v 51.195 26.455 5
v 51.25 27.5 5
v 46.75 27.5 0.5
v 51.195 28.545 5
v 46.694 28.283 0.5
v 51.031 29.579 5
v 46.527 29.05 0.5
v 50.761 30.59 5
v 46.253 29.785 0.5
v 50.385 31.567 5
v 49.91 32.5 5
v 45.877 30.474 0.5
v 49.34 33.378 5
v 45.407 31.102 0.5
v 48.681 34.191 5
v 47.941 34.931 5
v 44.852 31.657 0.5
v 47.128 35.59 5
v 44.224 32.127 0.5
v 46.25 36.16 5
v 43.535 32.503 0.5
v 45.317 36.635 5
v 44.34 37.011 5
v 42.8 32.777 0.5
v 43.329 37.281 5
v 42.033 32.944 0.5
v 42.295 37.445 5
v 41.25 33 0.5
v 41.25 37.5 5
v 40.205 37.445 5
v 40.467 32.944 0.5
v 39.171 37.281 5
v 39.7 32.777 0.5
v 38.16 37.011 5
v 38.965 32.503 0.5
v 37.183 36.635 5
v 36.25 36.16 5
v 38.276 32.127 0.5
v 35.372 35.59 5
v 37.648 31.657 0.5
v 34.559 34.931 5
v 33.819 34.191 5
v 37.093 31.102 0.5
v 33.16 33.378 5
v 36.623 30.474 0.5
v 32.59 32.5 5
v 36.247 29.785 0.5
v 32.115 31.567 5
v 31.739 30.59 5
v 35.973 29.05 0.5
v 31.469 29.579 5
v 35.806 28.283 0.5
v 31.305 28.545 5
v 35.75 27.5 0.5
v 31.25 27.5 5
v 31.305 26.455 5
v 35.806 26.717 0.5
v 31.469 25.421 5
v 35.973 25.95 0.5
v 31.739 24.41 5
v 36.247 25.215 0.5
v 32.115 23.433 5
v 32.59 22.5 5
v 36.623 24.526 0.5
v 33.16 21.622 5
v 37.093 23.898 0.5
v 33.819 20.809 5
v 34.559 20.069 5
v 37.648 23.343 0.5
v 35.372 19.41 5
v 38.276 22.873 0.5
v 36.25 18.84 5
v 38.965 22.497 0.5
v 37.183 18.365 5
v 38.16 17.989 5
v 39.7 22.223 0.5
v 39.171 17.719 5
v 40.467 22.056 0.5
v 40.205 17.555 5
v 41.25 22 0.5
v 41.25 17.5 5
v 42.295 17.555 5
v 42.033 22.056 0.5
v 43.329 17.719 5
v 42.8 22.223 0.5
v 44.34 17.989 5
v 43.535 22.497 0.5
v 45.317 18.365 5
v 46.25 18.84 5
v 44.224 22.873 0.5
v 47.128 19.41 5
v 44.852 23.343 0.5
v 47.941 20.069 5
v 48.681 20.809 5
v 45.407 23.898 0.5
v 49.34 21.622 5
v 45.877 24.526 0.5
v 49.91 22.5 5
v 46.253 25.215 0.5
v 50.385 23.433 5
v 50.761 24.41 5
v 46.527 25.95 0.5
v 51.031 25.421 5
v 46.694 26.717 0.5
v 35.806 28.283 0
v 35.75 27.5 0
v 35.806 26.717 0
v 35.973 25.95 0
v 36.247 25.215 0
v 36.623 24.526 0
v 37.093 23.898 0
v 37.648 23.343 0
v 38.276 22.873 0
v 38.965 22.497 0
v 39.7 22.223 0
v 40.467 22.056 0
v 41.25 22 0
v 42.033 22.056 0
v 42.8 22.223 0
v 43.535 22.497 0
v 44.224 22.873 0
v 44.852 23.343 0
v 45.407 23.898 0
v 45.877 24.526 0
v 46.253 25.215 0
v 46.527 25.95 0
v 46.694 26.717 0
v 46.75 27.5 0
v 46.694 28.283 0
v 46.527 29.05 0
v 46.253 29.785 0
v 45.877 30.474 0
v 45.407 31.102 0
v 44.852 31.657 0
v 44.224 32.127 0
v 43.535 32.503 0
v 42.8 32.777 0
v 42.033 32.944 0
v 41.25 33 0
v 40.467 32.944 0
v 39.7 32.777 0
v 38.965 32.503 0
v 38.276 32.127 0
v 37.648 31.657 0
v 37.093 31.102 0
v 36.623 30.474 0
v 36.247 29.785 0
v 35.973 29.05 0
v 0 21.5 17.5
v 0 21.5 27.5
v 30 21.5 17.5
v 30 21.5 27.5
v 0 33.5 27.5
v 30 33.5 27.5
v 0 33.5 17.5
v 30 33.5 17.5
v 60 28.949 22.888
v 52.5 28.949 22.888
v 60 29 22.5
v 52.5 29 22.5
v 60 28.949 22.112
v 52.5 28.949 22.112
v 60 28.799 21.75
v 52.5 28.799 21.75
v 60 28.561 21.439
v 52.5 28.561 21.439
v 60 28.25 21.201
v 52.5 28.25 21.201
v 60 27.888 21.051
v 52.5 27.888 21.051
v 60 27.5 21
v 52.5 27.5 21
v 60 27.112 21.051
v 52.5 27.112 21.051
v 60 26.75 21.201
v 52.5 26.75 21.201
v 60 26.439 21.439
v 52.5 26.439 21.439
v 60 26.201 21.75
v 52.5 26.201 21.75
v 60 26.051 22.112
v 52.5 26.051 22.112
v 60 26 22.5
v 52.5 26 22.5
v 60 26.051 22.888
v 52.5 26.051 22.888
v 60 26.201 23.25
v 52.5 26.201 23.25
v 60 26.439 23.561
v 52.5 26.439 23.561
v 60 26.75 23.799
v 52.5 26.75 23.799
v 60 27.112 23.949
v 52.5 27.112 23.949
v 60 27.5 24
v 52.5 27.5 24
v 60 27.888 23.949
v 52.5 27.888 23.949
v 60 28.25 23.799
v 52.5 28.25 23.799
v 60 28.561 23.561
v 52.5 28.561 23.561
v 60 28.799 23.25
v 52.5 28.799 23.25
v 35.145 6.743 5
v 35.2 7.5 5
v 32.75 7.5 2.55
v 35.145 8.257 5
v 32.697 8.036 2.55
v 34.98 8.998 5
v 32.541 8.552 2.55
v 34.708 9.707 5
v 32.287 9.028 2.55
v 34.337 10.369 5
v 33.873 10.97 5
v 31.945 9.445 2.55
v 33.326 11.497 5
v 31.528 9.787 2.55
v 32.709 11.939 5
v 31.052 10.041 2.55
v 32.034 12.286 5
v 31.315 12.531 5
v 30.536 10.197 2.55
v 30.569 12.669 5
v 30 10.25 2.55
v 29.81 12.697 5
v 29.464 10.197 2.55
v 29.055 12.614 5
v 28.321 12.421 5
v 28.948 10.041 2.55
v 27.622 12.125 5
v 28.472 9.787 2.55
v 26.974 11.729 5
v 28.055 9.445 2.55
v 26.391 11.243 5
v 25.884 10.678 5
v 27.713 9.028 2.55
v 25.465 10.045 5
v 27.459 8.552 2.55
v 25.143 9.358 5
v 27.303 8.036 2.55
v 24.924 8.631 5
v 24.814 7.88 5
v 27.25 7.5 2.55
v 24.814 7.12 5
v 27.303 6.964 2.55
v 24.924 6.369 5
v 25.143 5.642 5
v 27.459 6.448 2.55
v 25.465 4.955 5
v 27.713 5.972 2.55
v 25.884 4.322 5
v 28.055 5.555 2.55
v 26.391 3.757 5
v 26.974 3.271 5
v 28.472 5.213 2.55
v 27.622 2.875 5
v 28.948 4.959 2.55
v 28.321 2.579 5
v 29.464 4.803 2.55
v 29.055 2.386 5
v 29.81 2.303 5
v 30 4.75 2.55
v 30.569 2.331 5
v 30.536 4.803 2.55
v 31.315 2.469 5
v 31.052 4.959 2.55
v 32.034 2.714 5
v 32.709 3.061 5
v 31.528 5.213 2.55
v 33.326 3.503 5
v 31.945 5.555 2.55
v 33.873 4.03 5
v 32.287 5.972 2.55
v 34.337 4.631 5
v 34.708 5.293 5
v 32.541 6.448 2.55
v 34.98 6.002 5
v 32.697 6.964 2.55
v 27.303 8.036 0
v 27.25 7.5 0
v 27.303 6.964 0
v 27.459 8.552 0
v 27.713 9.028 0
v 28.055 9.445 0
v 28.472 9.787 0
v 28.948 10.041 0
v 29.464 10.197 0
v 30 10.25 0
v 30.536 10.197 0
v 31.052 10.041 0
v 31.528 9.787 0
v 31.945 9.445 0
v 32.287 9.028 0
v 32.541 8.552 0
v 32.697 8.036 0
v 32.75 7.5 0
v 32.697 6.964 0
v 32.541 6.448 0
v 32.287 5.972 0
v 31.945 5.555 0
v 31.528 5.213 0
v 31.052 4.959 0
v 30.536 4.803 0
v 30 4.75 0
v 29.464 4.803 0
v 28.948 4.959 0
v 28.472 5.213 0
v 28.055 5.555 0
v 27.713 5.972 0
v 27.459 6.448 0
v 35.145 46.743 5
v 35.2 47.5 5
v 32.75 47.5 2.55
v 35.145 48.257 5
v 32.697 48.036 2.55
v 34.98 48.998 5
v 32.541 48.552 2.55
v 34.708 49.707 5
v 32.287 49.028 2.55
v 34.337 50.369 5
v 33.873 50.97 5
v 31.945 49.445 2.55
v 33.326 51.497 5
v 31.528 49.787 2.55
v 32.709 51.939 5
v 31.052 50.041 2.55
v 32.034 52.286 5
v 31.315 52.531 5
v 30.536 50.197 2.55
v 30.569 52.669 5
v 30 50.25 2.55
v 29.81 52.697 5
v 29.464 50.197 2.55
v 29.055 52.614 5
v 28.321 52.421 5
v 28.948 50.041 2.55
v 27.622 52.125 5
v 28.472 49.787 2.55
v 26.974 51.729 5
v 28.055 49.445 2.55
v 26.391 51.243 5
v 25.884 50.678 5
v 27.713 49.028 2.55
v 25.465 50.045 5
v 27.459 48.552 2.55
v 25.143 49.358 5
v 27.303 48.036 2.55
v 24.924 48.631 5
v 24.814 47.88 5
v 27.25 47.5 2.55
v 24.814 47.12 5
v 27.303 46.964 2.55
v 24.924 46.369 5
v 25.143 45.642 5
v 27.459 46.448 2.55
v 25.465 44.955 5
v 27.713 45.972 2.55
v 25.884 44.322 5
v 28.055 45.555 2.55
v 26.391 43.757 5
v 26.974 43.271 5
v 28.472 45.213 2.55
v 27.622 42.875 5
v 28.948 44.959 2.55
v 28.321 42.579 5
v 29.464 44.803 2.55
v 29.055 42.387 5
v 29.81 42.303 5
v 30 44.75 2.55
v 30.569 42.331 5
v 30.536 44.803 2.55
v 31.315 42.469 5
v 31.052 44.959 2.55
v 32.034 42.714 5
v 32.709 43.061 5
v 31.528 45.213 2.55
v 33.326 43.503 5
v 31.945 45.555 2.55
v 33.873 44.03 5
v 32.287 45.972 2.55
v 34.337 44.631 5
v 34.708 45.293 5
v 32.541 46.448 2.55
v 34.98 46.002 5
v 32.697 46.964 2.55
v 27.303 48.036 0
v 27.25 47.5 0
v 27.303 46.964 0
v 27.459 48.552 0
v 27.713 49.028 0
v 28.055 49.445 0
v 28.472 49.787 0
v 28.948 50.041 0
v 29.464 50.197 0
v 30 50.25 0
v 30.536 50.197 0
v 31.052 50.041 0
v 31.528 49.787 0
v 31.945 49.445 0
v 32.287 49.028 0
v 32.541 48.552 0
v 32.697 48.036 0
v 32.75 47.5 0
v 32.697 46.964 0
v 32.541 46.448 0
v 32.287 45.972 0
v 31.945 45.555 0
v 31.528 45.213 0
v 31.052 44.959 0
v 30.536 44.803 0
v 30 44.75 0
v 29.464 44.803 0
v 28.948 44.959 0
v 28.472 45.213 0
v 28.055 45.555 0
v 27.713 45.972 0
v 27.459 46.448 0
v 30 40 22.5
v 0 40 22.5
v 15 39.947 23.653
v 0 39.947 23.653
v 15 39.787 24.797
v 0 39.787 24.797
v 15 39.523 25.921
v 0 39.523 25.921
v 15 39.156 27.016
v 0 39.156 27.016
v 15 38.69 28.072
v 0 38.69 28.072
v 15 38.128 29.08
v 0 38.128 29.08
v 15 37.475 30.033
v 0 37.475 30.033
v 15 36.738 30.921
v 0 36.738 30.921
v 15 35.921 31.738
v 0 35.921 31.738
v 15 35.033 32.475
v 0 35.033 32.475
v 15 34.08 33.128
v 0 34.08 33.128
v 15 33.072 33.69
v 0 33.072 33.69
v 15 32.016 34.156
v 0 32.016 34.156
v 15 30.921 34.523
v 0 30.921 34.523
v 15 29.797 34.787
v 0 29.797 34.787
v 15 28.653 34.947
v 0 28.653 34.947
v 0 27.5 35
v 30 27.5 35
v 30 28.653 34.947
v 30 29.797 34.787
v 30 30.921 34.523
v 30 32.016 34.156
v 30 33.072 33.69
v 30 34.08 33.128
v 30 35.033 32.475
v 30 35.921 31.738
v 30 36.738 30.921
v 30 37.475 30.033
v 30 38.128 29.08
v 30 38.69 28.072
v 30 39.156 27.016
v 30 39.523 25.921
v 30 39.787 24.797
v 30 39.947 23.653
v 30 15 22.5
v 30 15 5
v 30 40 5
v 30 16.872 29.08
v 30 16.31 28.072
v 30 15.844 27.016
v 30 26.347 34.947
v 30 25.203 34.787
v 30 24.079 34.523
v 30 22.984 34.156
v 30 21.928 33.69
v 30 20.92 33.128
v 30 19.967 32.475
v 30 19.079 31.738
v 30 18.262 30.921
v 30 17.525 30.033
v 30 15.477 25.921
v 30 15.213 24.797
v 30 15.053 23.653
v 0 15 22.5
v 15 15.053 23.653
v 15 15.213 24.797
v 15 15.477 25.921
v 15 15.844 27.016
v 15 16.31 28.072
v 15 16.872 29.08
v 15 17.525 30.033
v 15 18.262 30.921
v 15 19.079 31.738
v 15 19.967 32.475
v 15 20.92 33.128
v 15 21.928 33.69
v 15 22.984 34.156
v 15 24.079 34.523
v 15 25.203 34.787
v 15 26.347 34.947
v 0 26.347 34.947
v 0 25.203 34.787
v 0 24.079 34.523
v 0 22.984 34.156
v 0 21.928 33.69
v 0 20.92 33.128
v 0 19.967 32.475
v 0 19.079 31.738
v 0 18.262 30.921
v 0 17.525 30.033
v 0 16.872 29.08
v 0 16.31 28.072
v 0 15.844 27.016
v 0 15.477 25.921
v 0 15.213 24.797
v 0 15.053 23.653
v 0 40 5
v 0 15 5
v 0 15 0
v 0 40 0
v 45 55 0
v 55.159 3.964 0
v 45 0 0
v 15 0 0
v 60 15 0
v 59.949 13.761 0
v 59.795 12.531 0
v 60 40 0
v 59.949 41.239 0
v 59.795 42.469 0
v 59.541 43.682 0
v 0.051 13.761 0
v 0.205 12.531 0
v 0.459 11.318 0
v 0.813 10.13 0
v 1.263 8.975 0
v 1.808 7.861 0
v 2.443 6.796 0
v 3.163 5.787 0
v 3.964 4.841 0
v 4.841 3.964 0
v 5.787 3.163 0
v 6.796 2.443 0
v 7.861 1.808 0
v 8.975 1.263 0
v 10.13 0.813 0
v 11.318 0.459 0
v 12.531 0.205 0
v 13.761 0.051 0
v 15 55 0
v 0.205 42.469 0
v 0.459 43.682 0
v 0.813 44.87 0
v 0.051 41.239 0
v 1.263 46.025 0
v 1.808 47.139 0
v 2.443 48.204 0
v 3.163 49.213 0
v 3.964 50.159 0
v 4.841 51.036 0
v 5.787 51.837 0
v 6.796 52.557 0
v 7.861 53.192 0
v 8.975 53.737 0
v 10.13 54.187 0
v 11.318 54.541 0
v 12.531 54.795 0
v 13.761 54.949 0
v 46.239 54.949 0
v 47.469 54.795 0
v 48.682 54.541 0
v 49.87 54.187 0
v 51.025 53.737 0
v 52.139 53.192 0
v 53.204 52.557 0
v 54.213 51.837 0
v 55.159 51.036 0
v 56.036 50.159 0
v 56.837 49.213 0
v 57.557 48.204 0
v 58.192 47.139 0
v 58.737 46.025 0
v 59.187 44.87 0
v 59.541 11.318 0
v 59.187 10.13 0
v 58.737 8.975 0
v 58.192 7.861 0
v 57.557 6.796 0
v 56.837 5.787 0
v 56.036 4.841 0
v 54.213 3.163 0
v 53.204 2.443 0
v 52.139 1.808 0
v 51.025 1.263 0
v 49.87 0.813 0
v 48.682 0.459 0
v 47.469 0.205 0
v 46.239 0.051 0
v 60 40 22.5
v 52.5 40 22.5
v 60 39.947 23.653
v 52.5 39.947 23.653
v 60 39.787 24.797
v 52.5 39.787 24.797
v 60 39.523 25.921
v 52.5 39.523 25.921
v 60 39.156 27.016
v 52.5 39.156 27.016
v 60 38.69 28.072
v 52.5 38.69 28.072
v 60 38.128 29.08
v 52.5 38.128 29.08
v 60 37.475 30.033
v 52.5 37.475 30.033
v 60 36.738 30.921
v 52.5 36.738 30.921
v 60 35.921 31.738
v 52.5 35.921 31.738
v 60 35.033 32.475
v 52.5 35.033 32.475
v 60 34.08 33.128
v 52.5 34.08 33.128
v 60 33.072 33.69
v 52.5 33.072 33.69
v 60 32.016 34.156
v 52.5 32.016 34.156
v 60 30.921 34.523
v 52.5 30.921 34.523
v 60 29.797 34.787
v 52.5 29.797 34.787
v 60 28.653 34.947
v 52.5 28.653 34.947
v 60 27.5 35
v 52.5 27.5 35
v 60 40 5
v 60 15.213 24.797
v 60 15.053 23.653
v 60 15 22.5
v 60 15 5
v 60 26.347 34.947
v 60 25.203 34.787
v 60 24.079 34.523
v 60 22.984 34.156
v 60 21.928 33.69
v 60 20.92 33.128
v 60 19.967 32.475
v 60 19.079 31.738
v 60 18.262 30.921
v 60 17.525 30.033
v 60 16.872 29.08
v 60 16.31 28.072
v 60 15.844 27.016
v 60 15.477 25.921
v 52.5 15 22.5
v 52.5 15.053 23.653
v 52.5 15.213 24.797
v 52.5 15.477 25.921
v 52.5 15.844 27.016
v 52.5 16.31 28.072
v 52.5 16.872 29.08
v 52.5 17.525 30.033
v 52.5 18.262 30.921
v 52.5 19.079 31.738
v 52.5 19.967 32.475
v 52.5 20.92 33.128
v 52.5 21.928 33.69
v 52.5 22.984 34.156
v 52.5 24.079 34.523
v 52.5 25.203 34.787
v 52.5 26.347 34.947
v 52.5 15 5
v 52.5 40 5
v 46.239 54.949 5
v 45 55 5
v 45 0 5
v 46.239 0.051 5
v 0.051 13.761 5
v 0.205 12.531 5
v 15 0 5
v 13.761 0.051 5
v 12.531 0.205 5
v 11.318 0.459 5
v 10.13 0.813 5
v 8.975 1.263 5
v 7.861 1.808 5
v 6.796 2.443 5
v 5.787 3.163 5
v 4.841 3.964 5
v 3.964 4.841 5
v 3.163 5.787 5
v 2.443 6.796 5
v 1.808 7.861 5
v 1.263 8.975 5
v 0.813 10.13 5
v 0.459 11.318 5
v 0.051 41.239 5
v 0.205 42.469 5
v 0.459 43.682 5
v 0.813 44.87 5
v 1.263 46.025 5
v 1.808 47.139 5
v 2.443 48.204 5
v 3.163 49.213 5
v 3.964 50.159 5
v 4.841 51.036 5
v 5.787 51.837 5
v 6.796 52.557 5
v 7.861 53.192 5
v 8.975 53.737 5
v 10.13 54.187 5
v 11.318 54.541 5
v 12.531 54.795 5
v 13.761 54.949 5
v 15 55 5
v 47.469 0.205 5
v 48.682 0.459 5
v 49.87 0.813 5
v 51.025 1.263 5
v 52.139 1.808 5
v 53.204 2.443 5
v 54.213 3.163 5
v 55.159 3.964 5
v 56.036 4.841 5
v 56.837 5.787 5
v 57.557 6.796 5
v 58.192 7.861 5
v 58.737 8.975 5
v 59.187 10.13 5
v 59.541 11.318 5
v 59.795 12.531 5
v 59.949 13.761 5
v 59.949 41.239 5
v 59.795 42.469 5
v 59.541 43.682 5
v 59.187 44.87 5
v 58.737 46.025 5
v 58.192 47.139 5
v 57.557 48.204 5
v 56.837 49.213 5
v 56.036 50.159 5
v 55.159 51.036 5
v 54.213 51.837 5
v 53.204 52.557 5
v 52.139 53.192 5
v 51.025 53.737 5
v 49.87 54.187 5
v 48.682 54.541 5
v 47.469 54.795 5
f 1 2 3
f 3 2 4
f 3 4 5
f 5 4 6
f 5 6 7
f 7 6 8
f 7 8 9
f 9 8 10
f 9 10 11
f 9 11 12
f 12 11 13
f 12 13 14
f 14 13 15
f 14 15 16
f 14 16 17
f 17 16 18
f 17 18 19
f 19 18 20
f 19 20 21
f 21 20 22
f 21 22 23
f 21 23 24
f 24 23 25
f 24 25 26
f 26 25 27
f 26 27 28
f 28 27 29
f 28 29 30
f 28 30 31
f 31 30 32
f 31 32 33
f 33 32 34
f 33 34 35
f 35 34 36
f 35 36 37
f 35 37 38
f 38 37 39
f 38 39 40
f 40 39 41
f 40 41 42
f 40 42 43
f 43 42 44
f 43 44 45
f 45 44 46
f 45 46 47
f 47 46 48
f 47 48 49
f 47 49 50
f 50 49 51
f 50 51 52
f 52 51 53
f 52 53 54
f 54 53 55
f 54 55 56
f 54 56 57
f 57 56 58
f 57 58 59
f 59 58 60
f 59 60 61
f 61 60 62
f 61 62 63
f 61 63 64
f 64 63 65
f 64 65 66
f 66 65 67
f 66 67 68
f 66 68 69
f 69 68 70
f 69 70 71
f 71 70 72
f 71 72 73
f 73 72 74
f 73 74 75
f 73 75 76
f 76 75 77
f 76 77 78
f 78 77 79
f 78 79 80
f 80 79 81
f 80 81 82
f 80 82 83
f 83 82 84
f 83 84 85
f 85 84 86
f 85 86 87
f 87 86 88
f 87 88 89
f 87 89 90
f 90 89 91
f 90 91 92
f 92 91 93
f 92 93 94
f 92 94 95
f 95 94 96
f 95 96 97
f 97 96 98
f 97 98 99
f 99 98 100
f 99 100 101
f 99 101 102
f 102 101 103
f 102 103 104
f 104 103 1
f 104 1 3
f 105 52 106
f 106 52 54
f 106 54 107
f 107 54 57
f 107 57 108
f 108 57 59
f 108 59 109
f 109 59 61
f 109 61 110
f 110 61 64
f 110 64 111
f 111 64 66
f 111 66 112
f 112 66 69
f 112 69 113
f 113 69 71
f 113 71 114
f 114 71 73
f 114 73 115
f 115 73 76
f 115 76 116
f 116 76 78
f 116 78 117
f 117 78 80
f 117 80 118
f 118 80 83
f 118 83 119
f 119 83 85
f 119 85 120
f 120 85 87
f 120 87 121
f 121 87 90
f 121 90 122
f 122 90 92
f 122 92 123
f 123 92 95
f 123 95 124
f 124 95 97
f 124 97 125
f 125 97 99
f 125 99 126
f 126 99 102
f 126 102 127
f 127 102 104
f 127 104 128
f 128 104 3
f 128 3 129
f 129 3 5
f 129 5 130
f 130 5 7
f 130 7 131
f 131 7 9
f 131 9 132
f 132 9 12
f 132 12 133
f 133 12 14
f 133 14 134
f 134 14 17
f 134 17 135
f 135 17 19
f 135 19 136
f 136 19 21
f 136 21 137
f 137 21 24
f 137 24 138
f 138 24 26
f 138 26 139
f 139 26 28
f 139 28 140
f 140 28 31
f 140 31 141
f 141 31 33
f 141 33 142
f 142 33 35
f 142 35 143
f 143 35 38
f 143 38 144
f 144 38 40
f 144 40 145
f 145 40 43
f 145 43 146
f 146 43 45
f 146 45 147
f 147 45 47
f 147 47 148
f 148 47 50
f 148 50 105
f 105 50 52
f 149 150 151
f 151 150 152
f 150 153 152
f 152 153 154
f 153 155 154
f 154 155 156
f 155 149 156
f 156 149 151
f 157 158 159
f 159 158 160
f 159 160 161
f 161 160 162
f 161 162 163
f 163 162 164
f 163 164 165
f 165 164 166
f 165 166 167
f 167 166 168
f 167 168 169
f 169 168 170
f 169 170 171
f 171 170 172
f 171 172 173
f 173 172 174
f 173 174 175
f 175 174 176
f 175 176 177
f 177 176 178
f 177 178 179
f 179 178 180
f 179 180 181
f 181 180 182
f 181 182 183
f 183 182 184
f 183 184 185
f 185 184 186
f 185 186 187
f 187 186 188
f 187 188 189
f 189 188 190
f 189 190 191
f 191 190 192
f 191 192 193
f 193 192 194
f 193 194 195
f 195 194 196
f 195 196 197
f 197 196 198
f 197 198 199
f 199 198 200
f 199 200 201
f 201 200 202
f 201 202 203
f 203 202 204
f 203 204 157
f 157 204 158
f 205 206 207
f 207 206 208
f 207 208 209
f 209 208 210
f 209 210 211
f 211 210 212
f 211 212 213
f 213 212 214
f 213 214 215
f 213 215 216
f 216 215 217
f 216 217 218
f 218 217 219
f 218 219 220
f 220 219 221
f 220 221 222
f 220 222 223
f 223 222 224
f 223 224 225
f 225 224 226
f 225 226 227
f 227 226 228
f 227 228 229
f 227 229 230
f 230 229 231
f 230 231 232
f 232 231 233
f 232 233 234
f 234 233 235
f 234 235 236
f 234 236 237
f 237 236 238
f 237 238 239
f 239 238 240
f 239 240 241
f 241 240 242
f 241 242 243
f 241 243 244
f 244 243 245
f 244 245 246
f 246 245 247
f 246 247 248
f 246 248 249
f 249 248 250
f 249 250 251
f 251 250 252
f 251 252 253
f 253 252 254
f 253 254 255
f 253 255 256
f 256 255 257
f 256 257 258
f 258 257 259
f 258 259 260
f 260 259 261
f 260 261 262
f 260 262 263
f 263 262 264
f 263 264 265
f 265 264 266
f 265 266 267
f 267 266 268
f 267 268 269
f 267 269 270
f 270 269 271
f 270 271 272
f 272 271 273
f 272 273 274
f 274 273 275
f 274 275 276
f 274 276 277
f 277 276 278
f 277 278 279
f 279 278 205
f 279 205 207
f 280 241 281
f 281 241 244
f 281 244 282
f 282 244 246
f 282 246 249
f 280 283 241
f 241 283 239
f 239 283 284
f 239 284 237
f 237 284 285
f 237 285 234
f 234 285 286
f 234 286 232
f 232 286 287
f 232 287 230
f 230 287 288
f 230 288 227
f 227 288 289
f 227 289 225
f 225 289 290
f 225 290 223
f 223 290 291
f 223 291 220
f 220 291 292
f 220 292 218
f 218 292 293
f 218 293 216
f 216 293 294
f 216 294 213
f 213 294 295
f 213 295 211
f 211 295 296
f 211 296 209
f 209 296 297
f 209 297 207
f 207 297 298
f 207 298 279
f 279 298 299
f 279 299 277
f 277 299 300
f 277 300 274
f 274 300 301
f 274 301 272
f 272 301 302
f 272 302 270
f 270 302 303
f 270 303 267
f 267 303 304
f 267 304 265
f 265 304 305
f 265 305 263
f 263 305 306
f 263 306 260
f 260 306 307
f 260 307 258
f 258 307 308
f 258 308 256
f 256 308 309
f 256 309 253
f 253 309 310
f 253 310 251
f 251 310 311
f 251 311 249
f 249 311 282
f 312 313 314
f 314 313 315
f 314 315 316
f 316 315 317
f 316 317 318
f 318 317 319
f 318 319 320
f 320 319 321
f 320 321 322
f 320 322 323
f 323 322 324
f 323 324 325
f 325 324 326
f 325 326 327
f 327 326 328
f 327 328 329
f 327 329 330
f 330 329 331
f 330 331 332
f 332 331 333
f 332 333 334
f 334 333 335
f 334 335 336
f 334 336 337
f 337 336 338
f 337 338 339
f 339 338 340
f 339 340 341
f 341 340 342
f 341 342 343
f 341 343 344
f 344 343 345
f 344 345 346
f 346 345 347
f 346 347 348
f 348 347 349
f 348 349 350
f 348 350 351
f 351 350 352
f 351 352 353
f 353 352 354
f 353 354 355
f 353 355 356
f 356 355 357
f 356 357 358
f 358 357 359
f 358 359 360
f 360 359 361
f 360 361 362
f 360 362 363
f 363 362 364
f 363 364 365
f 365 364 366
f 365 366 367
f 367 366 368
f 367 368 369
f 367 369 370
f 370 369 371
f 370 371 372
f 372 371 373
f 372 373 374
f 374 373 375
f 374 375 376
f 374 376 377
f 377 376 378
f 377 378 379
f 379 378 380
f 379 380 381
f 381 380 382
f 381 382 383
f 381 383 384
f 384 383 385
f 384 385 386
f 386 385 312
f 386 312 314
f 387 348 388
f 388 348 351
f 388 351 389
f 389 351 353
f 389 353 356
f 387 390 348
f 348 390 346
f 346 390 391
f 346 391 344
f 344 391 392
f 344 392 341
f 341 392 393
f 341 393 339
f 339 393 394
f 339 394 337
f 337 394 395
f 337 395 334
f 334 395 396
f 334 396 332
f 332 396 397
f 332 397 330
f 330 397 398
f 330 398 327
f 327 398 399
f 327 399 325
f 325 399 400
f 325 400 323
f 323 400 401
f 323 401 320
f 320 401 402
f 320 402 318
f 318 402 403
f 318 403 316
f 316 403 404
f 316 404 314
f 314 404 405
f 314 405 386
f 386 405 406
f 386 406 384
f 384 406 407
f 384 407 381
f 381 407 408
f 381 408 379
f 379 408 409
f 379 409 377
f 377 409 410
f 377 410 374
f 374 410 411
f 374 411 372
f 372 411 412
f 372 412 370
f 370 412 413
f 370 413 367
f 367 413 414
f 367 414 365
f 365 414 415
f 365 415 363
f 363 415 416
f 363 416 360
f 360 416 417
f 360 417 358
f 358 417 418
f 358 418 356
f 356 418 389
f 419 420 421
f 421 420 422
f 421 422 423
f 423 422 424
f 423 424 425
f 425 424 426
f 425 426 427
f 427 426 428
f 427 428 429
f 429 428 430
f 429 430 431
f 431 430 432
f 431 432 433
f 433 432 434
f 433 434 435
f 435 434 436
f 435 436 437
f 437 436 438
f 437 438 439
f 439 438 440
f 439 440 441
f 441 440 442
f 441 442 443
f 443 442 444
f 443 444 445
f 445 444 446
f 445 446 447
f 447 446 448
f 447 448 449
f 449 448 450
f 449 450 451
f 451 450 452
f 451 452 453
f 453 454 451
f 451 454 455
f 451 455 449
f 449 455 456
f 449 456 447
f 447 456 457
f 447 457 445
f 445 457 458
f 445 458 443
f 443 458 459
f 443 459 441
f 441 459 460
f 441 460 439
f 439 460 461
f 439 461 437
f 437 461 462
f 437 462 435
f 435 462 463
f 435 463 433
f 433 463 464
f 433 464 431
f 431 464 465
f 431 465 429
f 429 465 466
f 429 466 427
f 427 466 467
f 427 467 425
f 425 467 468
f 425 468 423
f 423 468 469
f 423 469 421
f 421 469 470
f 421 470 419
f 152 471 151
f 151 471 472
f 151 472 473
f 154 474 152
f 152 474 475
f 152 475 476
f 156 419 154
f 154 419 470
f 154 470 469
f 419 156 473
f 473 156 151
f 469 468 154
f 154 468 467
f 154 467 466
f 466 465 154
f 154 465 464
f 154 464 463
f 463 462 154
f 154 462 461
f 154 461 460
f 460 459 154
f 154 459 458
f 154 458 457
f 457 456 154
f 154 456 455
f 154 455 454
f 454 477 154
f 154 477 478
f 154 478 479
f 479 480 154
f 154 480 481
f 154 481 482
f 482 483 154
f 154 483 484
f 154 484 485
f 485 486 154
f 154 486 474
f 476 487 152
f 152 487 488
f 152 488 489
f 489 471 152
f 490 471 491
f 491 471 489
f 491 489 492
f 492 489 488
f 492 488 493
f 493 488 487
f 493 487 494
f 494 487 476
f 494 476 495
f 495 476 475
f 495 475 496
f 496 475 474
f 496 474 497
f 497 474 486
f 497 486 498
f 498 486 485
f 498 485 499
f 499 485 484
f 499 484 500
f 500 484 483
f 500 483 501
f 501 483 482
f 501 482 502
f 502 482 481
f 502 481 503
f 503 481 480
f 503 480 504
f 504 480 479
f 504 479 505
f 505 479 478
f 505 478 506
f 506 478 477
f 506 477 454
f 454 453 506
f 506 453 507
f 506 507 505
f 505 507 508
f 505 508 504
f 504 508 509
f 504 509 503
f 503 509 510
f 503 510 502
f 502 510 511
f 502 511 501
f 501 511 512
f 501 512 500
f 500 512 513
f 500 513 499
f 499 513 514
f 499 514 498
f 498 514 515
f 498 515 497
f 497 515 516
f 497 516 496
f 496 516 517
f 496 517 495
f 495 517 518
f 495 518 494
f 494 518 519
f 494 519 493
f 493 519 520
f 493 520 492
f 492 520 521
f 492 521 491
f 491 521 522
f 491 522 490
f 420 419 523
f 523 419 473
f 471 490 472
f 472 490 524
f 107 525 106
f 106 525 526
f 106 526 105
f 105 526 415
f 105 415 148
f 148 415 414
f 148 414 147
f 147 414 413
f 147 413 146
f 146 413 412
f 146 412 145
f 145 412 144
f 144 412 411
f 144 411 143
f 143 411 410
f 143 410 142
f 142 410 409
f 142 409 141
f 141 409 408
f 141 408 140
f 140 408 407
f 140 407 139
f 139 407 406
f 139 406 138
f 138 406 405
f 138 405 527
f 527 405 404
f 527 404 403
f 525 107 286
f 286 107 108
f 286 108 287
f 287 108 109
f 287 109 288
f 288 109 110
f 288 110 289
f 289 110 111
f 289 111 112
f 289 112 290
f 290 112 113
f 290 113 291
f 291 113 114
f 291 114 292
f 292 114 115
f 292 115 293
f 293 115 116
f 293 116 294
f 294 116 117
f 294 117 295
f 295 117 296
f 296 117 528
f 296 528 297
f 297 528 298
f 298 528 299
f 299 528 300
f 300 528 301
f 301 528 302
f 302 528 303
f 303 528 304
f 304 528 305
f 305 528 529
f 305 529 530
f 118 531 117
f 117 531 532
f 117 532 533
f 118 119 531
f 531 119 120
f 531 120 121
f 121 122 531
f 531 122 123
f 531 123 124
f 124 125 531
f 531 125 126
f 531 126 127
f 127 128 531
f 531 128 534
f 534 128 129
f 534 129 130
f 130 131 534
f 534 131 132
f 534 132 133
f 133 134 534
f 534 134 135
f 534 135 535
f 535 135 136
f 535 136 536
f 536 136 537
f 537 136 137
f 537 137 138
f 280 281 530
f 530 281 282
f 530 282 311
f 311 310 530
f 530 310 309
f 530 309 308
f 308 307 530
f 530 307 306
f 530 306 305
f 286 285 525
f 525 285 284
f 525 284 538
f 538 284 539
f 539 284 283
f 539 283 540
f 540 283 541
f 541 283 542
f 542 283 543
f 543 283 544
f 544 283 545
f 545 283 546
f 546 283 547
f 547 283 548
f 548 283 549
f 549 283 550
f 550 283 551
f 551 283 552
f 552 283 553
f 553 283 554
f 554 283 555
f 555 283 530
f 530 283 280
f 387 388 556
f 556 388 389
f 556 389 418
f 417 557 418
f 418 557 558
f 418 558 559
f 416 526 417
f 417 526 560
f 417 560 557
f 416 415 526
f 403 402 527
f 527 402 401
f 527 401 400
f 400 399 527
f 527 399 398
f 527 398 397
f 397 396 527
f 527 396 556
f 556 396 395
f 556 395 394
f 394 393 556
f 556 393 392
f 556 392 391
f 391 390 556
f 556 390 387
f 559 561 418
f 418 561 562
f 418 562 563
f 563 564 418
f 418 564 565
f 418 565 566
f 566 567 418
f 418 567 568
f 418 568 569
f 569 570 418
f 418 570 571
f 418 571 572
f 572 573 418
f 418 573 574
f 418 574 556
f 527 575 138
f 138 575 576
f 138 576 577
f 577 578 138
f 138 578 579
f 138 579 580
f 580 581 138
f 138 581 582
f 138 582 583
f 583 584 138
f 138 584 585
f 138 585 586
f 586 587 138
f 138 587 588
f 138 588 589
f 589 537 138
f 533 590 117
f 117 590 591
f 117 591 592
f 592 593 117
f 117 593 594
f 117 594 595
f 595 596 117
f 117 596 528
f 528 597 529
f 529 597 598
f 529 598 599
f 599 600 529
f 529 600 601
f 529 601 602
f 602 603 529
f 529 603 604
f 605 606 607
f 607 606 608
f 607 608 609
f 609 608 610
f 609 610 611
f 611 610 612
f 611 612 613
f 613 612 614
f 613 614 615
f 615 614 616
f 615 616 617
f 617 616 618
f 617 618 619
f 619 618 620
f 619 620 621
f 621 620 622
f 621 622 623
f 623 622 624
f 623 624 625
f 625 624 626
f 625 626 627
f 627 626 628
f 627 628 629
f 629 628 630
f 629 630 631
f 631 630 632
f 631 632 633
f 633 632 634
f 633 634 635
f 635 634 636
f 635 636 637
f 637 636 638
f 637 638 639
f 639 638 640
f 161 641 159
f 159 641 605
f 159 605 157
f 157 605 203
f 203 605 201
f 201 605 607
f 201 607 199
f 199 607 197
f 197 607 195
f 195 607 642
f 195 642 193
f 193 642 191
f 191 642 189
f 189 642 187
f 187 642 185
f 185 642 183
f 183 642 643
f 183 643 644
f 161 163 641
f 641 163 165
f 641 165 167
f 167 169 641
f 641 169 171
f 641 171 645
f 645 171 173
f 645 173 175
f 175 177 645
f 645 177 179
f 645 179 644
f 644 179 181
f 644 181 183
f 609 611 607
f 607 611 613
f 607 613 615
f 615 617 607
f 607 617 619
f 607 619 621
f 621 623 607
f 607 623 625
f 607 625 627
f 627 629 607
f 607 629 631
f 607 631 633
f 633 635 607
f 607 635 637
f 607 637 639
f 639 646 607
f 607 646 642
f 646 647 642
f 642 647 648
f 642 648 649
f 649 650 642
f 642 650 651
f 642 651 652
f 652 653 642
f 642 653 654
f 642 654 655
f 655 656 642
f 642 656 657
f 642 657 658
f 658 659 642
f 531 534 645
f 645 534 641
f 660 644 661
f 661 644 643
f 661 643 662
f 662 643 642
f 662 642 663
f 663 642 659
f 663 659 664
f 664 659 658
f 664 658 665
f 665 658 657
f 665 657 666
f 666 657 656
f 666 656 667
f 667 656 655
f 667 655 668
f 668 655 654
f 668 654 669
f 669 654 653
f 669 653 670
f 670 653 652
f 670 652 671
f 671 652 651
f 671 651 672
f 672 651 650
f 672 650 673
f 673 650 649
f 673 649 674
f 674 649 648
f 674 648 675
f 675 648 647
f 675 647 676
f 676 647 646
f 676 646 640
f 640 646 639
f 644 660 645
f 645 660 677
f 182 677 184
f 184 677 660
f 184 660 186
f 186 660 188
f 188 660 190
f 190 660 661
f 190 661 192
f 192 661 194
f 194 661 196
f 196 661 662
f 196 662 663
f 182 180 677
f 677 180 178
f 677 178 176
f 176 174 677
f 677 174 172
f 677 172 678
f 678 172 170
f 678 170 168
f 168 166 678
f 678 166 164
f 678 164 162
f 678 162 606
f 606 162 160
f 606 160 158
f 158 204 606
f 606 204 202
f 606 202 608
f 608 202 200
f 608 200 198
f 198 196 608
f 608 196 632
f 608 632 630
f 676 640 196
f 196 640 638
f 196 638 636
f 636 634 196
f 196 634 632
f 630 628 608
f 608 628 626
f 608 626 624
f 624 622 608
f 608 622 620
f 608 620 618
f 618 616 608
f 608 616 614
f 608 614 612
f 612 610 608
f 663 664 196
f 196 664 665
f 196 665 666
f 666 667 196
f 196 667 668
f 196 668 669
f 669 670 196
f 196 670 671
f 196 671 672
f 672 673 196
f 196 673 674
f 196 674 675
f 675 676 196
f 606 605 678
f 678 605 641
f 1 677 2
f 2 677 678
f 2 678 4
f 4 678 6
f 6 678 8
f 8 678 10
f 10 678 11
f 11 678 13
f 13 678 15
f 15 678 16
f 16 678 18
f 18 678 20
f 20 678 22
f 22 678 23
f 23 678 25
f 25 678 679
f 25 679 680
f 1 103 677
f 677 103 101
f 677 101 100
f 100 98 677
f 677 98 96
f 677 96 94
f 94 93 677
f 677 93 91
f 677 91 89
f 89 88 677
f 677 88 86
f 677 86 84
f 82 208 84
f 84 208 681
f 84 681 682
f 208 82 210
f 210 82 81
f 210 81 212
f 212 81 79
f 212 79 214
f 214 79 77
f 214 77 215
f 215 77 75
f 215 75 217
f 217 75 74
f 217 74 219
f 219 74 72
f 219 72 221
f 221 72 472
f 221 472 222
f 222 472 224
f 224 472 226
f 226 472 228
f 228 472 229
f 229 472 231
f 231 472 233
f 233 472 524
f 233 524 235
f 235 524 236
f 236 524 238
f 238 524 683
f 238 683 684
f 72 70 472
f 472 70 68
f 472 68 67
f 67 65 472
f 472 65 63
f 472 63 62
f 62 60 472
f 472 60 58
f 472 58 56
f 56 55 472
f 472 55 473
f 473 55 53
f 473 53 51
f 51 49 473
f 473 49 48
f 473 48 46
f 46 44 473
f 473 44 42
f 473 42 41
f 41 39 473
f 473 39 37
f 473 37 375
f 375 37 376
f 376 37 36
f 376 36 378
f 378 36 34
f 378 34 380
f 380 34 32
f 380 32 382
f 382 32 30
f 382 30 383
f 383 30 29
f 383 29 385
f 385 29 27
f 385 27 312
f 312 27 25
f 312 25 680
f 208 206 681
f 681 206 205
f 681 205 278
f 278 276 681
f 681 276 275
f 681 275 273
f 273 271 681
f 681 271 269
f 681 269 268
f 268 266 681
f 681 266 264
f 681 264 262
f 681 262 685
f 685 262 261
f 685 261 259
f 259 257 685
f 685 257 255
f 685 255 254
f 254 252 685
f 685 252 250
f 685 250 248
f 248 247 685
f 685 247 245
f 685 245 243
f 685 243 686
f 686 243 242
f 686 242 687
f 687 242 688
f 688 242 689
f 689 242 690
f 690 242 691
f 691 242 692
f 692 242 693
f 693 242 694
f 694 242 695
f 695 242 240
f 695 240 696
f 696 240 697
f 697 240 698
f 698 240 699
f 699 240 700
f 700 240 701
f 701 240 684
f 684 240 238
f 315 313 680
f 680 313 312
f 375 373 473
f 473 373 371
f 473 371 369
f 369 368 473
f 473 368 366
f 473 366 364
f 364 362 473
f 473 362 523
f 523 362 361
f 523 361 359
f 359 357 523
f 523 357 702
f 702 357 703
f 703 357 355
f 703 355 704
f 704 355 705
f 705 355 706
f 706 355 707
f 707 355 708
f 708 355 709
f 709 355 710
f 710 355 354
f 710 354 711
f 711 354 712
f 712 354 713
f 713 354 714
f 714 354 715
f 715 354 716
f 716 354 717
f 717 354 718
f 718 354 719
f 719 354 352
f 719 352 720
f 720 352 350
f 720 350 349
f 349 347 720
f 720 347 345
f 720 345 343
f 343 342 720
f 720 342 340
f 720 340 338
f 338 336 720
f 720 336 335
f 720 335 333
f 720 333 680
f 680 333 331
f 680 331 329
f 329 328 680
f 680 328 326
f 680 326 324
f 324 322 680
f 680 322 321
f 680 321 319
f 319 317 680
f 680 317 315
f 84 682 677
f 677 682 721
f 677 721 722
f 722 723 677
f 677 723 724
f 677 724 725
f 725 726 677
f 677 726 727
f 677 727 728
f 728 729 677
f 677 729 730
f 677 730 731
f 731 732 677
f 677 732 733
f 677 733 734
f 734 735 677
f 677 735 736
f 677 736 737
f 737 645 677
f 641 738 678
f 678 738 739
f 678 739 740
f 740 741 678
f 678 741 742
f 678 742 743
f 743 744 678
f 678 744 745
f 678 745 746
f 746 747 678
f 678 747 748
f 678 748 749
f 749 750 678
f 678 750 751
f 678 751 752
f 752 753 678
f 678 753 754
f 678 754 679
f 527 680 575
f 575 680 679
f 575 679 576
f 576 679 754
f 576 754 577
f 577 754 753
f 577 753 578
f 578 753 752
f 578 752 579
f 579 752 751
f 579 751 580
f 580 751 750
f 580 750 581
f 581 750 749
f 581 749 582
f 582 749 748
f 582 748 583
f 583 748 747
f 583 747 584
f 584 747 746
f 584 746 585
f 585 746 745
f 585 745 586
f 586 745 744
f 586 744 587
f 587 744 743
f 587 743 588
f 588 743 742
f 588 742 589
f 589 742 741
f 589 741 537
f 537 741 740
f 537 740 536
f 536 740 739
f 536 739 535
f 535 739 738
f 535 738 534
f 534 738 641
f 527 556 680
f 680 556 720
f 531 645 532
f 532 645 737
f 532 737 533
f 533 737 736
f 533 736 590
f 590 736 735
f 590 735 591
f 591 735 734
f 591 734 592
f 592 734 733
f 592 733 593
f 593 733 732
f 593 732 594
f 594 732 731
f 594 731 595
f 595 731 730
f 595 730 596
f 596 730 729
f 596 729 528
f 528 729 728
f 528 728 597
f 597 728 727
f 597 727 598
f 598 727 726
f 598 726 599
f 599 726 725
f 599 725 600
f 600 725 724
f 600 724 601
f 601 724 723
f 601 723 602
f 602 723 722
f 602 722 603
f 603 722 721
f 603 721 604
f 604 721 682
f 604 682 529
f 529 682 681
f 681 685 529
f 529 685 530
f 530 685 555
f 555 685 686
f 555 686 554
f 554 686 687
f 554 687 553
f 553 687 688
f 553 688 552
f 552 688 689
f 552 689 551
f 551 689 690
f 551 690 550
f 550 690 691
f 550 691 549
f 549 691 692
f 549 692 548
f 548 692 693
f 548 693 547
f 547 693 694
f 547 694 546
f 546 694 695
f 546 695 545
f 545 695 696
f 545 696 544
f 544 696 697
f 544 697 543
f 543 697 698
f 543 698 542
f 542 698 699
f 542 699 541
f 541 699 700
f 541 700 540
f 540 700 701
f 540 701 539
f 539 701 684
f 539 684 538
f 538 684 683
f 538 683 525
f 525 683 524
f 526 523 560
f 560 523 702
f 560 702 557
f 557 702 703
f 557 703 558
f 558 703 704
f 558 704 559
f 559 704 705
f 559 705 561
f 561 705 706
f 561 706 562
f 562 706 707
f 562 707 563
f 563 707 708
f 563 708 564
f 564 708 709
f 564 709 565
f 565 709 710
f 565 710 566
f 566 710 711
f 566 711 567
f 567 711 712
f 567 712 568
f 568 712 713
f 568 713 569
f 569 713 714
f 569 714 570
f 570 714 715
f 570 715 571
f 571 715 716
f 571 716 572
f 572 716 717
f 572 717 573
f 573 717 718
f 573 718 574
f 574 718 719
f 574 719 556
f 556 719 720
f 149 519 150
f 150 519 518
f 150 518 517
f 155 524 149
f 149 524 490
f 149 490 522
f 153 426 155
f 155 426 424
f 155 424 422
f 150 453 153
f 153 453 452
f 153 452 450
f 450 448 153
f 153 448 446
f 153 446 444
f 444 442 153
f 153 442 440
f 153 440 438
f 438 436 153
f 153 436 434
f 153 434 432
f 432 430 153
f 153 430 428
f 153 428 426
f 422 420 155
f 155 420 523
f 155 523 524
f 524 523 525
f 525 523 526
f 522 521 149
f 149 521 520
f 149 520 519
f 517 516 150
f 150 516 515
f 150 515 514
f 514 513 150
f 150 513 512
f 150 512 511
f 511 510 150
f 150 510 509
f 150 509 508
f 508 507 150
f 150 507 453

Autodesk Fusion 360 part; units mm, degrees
sketch "Skizze3" plane through (0, 0, 0) normal (0, 0, 1) x (1, 0, 0)
  line L0 (0, 0) -> (60, 0)
  line L1 (60, 0) -> (60, 55)
  line L2 (60, 55) -> (0, 55)
  line L3 (0, 55) -> (0, 0)
  line L4 (60, 55) -> (0, 55)
  line L5 (0, 55) -> (0, 0)
  line L6 (0, 0) -> (60, 0)
  line L7 (60, 0) -> (60, 55)
  line L8 (0, 15) -> (60, 15)
  line L9 (0, 40) -> (60, 40)
  line L10 (30, 40) -> (52.5, 40)
  line L11 (52.5, 40) -> (52.5, 15)
  line L12 (52.5, 15) -> (30, 15)
  line L13 (30, 15) -> (30, 40)
  point P0 (30, 7.5)
  point P1 (30, 47.5)
  dimension "d5" = 55
  dimension "d6" = 60
  dimension "d11" = 7.5
  dimension "d12" = 7.5
  dimension "d13" = 30
  dimension "d14" = 30
  dimension "d15" = 15
  dimension "d16" = 15
  dimension "d17" = 30
  dimension "d18" = 7.5
  dimension "d19" = 22.5
extrude "Extrusion2" add sketch "Skizze3" along normal blind 5
fillet "Abrundung2" radius 15 4 edges at (0, 55, 2.5) (0, 0, 2.5) (60, 0, 2.5) (60, 55, 2.5)
sketch "Skizze4" plane through (0, 0, 0) normal (0, 0, 1) x (1, 0, 0)
  line L0 (0, 15) -> (30, 15)
  line L1 (30, 15) -> (30, 40)
  line L2 (30, 40) -> (0, 40)
  line L3 (0, 40) -> (0, 15)
  point P0 (0, 15)
  point P1 (30, 40)
sketch "Skizze5" plane through (0, 0, 5) normal (0, 0, 1) x (-1, 0, 0)
  arc A0 (-60, -40) -> (-45, -55) centre (-45, -40) ccw
  line L0 (-45, -55) -> (-15, -55)
  arc A1 (-15, -55) -> (0, -40) centre (-15, -40) ccw
  line L1 (0, -40) -> (0, -15)
  arc A2 (0, -15) -> (-15, 0) centre (-15, -15) ccw
  line L2 (-15, 0) -> (-45, 0)
  arc A3 (-45, 0) -> (-60, -15) centre (-45, -15) ccw
  line L3 (-60, -15) -> (-60, -40)
  line L4 (-60, -15) -> (-52.5, -15)
  line L5 (-52.5, -15) -> (-52.5, -40)
  line L6 (-52.5, -40) -> (-60, -40)
  line L7 (-60, -40) -> (-60, -15)
  dimension "d20" = 7.5
  dimension "d21" = 25
extrude "Extrusion3" add sketch "Skizze5" along normal blind 30 contours L3 L4 L5 L6 L7
fillet "Abrundung3" radius 12.5 2 edges at (56.25, 15, 35) (56.25, 40, 35)
extrude "Extrusion4" add sketch "Skizze3" along normal blind 35 contours L3 L5 L8 L9 L13
fillet "Abrundung4" radius 12.5 2 edges at (15, 15, 35) (15, 40, 35)
sketch "Skizze6" plane through (0, 0, 5) normal (0, 0, 1) x (-1, 0, 0)
  line L0 (-30, -15) -> (0, -15)
  arc A0 (0, -15) -> (-15, 0) centre (-15, -15) ccw
  line L1 (-15, 0) -> (-45, 0)
  arc A1 (-45, 0) -> (-60, -15) centre (-45, -15) ccw
  line L2 (-60, -15) -> (-52.5, -15)
  line L3 (-52.5, -15) -> (-52.5, -40)
  line L4 (-52.5, -40) -> (-60, -40)
  arc A2 (-60, -40) -> (-45, -55) centre (-45, -40) ccw
  line L5 (-45, -55) -> (-15, -55)
  arc A3 (-15, -55) -> (0, -40) centre (-15, -40) ccw
  line L6 (0, -40) -> (-30, -40)
  line L7 (-30, -40) -> (-30, -15)
  point P0 (-30, -7.5)
  point P1 (-30, -47.5)
  point P2 (-41.25, -27.5)
  dimension "d48" = 27.5
  dimension "d49" = 27.5
  dimension "d50" = 11.25
  dimension "d51" = 11.25
hole "Bohrung1" at (30, 7.5, 5) at (30, 47.5, 5) direction (0, 0, -1) diameter 5.5 depth 33 tip angle 180 countersink diameter 10.4 countersink angle 90
sketch "Skizze7" plane through (60, 0, 0) normal (1, 0, 0) x (0, 1, 0)
  arc A0 (40, 22.5) -> (27.5, 35) centre (27.5, 22.5) ccw
  arc A1 (27.5, 35) -> (15, 22.5) centre (27.5, 22.5) ccw
  line L0 (15, 22.5) -> (15, 5)
  line L1 (15, 5) -> (15, 0)
  line L2 (15, 0) -> (40, 0)
  line L3 (40, 0) -> (40, 5)
  line L4 (40, 5) -> (40, 22.5)
  line L5 (0, 0) -> (55, 0)
  point P0 (27.5, 22.5)
  dimension "d35" = 12.5
  dimension "d36" = 22.5
hole "Bohrung2" at (60, 27.5, 22.5) direction (-1, 0, 0) diameter 3 depth 33 tip angle 180
sketch "Skizze8" plane through (0, 0, 0) normal (-1, 0, 0) x (0, -1, 0)
  arc A0 (-27.5, 35) -> (-40, 22.5) centre (-27.5, 22.5) ccw
  line L0 (-40, 22.5) -> (-40, 5)
  line L1 (-40, 5) -> (-40, 0)
  line L2 (-40, 0) -> (-15, 0)
  line L3 (-15, 0) -> (-15, 5)
  line L4 (-15, 5) -> (-15, 22.5)
  arc A1 (-15, 22.5) -> (-27.5, 35) centre (-27.5, 22.5) ccw
  line L5 (-33.5, 27.5) -> (-21.5, 27.5)
  line L6 (-21.5, 27.5) -> (-21.5, 17.5)
  line L7 (-21.5, 17.5) -> (-33.5, 17.5)
  line L8 (-33.5, 17.5) -> (-33.5, 27.5)
  line L9 (-55, 0) -> (0, 0)
  dimension "d40" = 12
  dimension "d41" = 10
  dimension "d42" = 6.5
  dimension "d43" = 6.5
  dimension "d44" = 17.5
  dimension "d45" = 7.5
extrude "Extrusion5" cut sketch "Skizze8" against normal blind 30 contours L5 L6 L7 L8
sketch "Skizze9" plane through (0, 0, 0) normal (0, 0, 1) x (1, 0, 0)
  point P0 (42.3928, 28.246)
  point P1 (43.9941, 27.6171)
hole "Bohrung3" at (41.25, 27.5, 5) direction (0, 0, -1) diameter 11 depth 10 tip angle 180 countersink diameter 20 countersink angle 90
extrude "Extrusion1" [suppressed]
fillet "Abrundung1" [suppressed]
